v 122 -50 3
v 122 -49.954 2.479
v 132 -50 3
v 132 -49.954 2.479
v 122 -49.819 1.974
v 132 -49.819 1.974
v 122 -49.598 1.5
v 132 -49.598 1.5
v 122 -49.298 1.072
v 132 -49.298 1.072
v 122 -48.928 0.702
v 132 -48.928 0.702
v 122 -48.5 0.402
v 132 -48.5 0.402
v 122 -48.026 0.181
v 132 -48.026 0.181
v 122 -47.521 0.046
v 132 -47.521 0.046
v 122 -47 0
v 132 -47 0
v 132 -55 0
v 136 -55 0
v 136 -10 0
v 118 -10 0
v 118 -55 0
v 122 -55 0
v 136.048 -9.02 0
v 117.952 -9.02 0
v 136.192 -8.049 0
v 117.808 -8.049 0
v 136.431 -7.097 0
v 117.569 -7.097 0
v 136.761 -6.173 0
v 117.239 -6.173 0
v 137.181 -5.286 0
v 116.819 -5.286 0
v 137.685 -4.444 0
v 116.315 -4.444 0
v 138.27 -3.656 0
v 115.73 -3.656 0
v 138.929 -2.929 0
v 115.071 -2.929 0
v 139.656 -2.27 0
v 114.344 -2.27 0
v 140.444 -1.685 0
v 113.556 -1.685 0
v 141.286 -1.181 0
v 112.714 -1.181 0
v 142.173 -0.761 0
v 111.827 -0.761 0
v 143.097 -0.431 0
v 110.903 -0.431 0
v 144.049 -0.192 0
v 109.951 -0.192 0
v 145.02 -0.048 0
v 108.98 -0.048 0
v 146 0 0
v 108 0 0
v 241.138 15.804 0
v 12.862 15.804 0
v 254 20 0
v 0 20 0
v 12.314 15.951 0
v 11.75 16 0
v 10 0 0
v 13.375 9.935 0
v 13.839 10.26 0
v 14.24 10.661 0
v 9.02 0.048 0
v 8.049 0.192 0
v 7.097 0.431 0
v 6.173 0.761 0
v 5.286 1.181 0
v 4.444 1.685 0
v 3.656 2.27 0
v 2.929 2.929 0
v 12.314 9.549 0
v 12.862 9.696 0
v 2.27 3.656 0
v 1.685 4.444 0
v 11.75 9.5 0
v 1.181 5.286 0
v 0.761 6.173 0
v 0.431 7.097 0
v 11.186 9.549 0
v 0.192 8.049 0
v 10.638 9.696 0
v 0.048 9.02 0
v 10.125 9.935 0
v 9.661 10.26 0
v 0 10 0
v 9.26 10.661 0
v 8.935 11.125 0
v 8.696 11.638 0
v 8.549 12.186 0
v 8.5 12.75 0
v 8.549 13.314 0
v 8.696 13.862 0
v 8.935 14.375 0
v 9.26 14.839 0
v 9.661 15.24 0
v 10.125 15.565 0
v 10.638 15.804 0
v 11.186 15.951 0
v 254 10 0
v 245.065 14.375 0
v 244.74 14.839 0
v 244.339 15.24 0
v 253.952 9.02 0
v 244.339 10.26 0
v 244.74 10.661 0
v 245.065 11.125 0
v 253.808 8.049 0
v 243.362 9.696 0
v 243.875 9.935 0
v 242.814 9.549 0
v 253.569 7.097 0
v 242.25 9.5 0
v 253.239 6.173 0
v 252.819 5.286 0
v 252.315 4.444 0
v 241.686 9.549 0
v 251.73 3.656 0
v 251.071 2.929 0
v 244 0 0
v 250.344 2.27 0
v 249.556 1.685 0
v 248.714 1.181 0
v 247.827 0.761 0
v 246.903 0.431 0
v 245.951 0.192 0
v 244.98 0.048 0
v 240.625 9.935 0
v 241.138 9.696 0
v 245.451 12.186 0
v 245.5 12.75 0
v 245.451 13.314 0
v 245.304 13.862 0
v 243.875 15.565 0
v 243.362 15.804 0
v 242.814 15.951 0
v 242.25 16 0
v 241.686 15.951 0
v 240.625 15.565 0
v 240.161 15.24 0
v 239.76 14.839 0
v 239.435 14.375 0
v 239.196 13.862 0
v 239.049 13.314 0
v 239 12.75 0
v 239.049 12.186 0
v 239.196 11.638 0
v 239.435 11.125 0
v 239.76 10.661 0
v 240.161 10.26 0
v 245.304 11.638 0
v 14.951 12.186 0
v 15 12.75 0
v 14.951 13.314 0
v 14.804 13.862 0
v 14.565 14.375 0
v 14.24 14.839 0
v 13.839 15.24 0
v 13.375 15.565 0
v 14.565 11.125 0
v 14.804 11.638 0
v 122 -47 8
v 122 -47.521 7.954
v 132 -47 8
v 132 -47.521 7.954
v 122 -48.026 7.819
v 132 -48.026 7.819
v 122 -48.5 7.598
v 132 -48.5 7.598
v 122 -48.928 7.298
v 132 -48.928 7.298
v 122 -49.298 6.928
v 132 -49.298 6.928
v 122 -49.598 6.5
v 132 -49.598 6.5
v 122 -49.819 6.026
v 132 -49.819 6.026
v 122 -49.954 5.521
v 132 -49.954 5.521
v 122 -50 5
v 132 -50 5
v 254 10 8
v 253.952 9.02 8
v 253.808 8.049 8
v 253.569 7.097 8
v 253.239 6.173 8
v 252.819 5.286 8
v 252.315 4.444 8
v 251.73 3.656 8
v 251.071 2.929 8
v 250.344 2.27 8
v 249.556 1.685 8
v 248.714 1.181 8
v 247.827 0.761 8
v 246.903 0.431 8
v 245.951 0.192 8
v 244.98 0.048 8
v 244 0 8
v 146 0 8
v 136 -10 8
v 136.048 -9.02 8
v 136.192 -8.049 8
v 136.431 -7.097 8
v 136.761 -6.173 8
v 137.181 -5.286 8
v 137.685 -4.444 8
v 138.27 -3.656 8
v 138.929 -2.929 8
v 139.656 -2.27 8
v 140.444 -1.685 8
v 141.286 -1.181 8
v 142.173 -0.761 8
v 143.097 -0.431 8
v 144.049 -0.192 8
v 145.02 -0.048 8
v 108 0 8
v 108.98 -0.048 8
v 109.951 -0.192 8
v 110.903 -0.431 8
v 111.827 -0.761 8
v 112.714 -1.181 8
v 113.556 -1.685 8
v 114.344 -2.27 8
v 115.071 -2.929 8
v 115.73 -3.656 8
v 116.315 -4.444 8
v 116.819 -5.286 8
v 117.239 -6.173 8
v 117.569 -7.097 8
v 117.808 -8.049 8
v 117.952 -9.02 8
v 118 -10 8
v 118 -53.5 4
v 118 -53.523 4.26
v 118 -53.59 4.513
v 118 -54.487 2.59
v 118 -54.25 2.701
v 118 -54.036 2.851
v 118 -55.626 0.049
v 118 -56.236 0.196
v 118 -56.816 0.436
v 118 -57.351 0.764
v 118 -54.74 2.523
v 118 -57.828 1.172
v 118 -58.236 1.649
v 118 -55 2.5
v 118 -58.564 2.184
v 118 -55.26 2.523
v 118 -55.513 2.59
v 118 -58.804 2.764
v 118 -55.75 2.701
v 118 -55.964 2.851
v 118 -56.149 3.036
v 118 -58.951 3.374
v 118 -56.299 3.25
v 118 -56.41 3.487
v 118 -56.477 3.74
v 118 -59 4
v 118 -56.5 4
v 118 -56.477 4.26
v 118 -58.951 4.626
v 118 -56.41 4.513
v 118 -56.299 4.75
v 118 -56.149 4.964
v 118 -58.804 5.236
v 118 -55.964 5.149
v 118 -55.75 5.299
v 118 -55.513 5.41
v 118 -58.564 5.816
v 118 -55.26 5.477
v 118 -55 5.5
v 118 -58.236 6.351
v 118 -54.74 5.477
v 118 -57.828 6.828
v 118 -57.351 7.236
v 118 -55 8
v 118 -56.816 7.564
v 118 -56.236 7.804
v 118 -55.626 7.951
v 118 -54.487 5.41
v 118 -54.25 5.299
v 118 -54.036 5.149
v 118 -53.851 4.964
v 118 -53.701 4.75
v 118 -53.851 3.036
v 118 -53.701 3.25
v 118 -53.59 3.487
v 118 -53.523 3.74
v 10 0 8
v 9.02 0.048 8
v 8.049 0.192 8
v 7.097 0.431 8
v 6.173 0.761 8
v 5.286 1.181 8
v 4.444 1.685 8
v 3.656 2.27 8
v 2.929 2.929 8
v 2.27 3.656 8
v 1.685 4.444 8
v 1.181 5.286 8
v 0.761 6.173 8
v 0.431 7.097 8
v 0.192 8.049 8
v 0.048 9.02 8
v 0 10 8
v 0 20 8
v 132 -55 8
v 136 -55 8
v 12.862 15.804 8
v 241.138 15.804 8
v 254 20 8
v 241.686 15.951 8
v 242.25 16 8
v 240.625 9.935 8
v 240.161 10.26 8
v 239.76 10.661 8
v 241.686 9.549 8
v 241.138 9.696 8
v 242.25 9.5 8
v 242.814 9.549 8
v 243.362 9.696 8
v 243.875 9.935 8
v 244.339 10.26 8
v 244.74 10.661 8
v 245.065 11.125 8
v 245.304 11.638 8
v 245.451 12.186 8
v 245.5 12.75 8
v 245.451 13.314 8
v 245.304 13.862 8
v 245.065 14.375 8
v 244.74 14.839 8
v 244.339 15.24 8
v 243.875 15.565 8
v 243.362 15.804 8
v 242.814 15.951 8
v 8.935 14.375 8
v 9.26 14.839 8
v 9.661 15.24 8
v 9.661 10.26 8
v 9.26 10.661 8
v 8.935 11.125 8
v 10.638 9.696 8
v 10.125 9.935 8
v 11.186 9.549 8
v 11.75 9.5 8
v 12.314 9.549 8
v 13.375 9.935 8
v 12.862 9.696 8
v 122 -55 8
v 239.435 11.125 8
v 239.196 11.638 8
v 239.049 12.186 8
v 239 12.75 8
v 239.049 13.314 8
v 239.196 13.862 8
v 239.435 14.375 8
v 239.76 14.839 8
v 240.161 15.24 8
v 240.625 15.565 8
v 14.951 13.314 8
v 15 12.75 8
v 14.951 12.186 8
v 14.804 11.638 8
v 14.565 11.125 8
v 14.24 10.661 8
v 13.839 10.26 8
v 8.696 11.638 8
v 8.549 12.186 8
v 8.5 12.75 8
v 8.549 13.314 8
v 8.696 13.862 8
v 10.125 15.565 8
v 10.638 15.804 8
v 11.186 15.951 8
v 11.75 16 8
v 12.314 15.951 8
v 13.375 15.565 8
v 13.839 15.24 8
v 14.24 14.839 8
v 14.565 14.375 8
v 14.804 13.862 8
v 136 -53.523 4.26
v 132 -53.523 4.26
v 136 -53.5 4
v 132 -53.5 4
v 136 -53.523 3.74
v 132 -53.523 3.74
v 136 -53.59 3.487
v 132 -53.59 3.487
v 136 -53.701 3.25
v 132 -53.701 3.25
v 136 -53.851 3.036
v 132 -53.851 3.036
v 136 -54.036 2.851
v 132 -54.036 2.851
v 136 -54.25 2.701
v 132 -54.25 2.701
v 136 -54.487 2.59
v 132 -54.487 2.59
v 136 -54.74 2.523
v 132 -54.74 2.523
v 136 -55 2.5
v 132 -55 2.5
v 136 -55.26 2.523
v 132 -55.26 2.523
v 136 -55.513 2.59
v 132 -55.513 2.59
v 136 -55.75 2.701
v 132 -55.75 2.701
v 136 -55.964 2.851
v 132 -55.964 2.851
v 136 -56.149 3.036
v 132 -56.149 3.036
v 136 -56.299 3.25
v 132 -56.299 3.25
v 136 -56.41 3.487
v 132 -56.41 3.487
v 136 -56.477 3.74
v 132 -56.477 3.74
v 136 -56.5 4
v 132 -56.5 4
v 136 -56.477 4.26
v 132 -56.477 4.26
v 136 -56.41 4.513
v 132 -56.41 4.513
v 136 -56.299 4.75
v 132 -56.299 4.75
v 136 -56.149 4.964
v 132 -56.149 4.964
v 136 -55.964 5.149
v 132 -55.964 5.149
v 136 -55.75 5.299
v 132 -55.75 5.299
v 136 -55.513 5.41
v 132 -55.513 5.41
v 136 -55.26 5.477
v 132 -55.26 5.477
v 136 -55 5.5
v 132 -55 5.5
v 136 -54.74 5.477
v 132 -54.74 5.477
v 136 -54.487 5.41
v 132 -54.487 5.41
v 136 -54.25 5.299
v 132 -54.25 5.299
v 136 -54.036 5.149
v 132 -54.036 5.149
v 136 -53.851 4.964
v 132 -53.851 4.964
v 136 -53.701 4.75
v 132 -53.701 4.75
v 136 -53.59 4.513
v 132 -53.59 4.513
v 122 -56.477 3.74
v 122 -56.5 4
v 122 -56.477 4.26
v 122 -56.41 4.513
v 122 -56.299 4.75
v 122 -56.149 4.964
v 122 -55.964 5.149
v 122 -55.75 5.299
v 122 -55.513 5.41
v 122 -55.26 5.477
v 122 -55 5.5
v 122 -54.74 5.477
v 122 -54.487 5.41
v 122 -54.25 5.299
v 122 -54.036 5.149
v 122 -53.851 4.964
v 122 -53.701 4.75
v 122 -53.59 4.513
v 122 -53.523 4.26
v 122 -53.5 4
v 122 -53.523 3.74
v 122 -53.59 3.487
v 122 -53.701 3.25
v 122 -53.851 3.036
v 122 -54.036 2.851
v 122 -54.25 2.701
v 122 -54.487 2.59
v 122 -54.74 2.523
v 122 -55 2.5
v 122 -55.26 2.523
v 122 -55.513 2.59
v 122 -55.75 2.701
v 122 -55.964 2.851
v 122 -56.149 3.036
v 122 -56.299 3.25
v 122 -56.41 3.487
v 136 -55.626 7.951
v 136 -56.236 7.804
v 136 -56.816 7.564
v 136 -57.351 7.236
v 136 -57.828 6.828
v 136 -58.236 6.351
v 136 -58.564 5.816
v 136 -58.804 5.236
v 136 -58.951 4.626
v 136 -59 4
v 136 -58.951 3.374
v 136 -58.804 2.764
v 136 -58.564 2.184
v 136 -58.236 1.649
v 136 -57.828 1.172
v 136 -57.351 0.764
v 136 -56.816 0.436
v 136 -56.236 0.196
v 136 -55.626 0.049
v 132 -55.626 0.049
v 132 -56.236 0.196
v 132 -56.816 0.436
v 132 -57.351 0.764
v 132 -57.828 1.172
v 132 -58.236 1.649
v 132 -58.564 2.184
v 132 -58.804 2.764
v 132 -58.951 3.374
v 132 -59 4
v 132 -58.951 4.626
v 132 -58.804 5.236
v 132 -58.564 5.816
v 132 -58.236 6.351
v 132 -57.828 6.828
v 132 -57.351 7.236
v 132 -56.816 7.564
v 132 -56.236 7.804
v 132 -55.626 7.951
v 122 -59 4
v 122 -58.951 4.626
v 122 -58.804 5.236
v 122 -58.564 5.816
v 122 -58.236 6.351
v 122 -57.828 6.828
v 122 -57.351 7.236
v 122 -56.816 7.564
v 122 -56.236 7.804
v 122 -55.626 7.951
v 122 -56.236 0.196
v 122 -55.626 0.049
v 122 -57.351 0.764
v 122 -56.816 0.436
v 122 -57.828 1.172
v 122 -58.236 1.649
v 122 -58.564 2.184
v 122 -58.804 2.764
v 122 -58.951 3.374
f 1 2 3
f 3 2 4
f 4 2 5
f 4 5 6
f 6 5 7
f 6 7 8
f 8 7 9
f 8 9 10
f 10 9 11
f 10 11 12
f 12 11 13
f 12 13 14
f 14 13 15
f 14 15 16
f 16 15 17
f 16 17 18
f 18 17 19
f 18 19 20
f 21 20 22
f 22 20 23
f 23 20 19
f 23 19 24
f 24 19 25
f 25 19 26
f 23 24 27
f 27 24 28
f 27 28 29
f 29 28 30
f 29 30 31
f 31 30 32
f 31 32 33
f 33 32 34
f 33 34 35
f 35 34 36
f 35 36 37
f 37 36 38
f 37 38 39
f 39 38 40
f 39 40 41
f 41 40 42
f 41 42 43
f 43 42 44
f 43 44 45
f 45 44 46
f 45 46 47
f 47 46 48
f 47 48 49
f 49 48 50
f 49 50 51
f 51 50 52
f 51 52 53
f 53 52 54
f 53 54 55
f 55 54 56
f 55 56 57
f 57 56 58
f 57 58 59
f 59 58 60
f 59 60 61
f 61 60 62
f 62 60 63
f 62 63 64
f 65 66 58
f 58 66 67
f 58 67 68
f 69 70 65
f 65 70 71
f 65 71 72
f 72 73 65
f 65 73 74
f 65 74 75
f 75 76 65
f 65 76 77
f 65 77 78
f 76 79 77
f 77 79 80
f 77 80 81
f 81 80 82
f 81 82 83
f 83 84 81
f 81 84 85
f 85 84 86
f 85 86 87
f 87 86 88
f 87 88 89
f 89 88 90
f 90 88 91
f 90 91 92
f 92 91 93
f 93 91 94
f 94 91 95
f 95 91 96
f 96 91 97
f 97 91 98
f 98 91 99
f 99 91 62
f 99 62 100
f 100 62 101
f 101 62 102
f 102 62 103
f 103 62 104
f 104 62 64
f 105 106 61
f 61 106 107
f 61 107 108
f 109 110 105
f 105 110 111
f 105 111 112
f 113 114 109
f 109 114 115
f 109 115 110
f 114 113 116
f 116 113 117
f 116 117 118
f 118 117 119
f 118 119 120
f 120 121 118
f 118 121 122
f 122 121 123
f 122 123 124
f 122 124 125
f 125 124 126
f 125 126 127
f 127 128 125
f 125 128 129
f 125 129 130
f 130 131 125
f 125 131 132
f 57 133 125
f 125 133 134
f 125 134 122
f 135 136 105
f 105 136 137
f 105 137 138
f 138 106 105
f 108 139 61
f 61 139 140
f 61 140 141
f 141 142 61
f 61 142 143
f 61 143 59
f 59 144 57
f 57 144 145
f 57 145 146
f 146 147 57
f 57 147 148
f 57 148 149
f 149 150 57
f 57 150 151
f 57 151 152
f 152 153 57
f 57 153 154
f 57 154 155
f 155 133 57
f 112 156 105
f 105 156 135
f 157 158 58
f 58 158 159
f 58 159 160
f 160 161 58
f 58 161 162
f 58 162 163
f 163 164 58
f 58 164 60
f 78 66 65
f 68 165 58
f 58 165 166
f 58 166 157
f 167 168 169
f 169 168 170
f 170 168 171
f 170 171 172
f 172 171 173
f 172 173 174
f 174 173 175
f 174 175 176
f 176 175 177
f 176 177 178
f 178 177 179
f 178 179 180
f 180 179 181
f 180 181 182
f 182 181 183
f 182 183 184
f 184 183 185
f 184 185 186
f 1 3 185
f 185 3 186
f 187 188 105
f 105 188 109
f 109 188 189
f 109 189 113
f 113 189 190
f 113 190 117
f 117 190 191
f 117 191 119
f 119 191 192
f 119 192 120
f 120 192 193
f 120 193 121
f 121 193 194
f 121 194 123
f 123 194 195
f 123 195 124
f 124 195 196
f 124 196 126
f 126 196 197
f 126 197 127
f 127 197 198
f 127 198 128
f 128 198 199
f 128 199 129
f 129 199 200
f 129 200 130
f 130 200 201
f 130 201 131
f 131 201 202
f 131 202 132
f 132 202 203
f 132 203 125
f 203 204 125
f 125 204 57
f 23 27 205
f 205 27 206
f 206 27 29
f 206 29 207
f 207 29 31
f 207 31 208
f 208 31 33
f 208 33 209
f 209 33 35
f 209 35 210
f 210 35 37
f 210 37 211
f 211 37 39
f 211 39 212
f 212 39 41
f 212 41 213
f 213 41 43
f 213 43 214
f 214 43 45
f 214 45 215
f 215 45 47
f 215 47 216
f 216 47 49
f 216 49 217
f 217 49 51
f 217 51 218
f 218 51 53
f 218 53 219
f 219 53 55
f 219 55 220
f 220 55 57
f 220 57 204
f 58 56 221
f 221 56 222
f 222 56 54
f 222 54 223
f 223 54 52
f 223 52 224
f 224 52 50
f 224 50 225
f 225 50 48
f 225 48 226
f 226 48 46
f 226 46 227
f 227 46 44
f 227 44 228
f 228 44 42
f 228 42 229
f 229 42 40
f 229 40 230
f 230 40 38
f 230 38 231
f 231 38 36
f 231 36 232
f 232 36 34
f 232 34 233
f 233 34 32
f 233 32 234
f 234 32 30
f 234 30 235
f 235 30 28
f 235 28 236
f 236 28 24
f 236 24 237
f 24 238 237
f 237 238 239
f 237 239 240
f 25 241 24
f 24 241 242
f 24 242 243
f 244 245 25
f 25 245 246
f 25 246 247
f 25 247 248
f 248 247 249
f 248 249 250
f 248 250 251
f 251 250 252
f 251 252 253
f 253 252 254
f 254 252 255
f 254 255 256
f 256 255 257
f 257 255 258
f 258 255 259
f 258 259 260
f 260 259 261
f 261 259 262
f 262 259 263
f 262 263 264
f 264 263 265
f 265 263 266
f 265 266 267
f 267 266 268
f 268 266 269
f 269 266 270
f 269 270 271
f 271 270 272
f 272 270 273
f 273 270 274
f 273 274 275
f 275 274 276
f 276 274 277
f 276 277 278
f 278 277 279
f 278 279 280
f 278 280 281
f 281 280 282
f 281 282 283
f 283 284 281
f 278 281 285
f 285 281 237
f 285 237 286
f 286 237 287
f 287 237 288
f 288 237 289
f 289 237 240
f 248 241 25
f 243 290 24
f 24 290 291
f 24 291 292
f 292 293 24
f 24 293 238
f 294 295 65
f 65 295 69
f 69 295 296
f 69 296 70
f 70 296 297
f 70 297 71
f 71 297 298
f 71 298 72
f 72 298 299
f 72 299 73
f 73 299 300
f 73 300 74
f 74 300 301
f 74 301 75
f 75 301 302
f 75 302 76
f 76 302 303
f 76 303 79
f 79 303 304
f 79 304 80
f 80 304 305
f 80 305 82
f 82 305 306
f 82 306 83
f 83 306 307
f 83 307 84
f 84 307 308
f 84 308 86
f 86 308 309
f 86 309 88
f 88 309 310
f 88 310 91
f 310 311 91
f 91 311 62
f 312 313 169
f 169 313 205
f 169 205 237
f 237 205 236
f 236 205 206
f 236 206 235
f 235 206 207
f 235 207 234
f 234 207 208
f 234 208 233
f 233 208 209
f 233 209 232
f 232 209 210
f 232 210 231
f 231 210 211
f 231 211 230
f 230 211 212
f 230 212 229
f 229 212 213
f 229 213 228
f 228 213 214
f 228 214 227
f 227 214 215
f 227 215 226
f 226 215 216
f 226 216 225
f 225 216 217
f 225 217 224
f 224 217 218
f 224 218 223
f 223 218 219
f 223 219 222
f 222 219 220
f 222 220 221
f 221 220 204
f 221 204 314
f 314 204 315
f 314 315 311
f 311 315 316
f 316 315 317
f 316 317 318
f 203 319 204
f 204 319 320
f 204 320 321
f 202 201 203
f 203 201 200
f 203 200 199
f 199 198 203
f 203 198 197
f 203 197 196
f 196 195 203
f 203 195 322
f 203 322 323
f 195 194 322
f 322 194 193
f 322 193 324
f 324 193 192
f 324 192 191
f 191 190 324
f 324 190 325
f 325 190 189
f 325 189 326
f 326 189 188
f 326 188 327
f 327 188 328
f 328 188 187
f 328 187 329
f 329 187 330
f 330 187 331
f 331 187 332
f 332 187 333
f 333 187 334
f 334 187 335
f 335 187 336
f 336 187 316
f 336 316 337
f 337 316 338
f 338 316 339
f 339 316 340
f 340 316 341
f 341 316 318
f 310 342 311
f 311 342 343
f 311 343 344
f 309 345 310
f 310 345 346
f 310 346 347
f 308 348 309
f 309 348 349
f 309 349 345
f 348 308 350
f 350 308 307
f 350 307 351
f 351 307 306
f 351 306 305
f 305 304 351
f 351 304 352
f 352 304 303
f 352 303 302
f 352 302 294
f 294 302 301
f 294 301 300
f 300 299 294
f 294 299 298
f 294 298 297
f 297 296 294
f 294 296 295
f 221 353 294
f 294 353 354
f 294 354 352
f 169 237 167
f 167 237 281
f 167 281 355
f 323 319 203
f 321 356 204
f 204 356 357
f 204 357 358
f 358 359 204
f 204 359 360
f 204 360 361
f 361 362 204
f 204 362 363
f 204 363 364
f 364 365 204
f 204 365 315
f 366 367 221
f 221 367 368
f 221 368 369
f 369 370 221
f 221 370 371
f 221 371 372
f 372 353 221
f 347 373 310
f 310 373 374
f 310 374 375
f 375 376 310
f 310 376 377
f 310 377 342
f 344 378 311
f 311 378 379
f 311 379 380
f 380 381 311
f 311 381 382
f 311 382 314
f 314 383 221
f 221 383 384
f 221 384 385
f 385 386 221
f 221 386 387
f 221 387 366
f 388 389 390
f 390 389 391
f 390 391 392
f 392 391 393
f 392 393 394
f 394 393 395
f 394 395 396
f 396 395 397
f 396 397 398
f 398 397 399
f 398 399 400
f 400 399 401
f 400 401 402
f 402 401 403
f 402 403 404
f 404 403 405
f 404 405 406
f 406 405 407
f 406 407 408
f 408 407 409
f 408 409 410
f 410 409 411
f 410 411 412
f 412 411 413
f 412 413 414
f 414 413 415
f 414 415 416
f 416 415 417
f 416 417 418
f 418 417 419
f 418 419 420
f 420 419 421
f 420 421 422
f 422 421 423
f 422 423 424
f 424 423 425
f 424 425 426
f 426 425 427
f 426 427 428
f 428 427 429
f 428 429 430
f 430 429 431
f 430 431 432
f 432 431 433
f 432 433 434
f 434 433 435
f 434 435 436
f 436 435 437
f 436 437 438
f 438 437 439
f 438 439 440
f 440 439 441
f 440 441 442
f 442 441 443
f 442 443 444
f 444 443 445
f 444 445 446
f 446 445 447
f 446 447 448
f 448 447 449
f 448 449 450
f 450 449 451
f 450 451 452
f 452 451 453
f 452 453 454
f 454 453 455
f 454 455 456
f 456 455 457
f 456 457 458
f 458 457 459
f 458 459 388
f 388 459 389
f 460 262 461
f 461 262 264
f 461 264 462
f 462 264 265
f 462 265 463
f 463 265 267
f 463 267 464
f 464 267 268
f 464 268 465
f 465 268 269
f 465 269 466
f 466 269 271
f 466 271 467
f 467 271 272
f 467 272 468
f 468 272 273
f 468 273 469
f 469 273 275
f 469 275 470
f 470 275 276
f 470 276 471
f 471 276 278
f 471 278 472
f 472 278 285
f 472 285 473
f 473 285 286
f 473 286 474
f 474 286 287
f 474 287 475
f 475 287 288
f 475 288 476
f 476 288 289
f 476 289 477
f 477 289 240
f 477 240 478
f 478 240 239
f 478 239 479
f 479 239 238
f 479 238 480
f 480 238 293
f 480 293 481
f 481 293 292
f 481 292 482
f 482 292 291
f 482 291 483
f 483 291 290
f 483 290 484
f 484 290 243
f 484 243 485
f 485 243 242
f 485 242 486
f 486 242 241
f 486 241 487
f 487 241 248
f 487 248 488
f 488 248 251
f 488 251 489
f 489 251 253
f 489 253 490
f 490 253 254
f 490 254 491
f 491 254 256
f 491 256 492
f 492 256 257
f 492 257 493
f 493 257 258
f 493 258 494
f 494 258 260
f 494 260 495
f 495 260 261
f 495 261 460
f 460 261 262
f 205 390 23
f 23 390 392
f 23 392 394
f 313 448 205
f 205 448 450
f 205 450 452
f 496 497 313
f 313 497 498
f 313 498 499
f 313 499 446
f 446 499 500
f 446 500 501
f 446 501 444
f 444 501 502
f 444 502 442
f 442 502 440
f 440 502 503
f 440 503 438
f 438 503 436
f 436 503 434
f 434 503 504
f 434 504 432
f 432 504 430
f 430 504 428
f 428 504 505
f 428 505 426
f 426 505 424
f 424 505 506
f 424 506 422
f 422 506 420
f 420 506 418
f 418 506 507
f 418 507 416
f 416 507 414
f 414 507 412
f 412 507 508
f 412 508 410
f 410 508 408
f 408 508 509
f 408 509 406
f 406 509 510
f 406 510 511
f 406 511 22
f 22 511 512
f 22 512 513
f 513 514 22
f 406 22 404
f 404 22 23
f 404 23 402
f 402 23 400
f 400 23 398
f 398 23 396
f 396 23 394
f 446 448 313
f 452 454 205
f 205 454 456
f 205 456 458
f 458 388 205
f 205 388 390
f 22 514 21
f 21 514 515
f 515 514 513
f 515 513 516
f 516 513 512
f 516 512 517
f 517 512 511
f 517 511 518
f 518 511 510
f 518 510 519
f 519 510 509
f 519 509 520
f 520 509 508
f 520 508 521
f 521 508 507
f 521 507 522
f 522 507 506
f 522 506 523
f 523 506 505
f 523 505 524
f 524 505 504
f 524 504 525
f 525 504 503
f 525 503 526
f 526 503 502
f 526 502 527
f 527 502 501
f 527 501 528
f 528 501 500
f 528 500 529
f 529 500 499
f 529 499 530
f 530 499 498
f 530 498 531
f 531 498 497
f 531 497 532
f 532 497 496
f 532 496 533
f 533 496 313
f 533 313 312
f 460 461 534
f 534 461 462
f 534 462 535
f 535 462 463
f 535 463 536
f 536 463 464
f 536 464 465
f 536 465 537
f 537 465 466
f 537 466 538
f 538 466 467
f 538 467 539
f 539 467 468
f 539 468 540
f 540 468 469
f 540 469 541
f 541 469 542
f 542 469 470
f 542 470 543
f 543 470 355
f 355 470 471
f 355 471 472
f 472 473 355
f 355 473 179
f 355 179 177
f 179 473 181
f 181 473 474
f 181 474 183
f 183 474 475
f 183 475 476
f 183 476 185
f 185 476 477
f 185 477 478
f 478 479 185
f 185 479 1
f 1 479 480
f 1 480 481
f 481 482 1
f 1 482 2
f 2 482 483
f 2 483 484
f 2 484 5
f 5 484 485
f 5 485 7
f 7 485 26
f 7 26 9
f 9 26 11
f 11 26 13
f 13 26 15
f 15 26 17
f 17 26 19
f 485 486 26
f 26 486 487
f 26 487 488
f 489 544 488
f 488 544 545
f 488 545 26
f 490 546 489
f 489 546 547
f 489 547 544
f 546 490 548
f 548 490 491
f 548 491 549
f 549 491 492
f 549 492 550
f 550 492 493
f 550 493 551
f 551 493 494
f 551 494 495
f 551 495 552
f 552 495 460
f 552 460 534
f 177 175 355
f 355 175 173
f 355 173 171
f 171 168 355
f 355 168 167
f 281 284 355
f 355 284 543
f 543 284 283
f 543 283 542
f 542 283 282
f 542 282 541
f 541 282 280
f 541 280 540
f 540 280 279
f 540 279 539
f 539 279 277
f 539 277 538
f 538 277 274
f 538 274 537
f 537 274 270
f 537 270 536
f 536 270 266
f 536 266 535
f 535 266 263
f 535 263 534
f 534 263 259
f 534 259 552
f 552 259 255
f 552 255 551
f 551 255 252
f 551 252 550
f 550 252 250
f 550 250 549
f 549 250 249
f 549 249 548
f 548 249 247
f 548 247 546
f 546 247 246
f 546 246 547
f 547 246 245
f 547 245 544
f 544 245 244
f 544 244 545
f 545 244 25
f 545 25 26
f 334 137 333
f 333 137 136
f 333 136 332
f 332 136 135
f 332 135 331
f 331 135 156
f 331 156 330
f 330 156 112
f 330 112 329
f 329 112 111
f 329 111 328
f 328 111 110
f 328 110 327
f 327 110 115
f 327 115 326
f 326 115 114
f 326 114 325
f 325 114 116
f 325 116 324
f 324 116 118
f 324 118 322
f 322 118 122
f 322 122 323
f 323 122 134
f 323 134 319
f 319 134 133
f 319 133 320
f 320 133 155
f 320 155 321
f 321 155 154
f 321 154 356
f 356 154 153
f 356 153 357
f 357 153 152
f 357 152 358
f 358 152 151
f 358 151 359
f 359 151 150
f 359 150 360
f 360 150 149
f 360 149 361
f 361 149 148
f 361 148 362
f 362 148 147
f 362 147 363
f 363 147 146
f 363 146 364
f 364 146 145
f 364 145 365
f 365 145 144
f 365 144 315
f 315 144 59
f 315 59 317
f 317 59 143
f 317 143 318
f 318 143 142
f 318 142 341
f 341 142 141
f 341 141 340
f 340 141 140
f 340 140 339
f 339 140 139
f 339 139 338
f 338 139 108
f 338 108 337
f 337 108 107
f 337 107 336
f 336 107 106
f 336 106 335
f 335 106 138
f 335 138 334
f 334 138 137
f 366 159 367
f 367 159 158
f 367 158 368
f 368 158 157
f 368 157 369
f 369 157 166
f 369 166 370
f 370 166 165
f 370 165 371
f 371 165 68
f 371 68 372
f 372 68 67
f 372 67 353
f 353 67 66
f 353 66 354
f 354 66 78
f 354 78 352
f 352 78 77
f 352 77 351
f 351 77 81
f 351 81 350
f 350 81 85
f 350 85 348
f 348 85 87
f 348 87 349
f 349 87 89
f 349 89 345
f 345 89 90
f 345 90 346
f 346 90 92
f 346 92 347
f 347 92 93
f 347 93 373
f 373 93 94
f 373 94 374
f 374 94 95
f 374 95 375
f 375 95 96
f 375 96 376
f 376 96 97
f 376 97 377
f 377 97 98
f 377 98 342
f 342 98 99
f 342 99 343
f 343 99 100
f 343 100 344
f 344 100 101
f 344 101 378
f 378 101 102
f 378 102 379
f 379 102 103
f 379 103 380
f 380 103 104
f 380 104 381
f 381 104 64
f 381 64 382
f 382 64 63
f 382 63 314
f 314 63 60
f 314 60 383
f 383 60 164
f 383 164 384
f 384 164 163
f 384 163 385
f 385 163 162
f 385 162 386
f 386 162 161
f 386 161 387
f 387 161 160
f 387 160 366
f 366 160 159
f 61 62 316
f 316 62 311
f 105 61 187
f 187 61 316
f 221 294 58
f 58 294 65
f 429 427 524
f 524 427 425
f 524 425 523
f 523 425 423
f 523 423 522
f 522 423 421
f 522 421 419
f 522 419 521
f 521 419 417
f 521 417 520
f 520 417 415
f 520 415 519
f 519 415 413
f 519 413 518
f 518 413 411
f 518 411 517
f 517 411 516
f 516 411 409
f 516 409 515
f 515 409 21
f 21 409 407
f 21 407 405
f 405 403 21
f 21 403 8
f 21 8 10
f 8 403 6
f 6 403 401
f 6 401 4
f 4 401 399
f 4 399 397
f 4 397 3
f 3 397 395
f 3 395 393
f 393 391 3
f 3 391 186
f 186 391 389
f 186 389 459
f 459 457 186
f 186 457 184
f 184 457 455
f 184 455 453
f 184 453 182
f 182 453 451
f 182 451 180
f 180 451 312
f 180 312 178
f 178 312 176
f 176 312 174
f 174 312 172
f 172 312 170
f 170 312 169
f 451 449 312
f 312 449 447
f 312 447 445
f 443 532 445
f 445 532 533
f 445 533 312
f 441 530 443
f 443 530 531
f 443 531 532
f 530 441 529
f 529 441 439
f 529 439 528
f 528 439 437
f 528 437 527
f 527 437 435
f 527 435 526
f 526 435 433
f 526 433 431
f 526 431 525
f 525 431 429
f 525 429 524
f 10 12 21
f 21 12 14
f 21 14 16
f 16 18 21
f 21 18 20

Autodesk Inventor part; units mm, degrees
ref_plane "YZ Plane" through (0, 0, 0) normal (1, 0, 0) x (0, 1, 0)
ref_plane "XZ Plane" through (0, 0, 0) normal (0, 1, 0) x (-1, 0, 0)
ref_plane "XY Plane" through (0, 0, 0) normal (0, 0, 1) x (1, 0, 0)
sketch "Sketch1" plane through (0, 0, 0) normal (0, 0, 1) x (1, 0, 0)
  line L0 (254, 0) -> (254, 20)
  line L1 (254, 20) -> (0, 20)
  line L2 (0, 20) -> (0, 0)
  line L3 (0, 20) -> (0, 16) construction
  line L4 (0, 16) -> (8.5, 16) construction
  line L5 (8.5, 16) -> (11.75, 16) construction
  line L6 (11.75, 16) -> (11.75, 12.75) construction
  circle A0 centre (11.75, 12.75) radius 3.25
  line L7 (254, 20) -> (254, 16) construction
  line L8 (254, 16) -> (245.5, 16) construction
  line L9 (245.5, 16) -> (245.5, 12.75) construction
  line L10 (245.5, 12.75) -> (242.25, 12.75) construction
  circle A1 centre (242.25, 12.75) radius 3.25
  line L11 (0, 0) -> (254, 0)
  line L12 (127, 0) -> (127, -50) construction
  line L13 (122, -50) -> (132, -50)
  line L14 (132, -50) -> (132, -59)
  line L15 (122, -50) -> (122, -59)
  line L16 (132, -59) -> (136, -59)
  line L17 (122, -59) -> (118, -59)
  line L18 (118, -59) -> (118, 0)
  line L19 (136, -59) -> (136, 0)
  dimension "d1" = 20
  dimension "d2" = 4
  dimension "d3" = 8.5
  dimension "d4" = 3.25
  dimension "d5" = 3.25
  dimension "d6" = 4
  dimension "d7" = 8.5
  dimension "d8" = 3.25
  dimension "d9" = 3.25
  dimension "d14" = 242.25
  dimension "d40" = 50
  dimension "d41" = 10
  dimension "d42" = 5
  dimension "d43" = 0
  dimension "d44" = 9
  dimension "d45" = 9
  dimension "d46" = 4
  dimension "d47" = 4
extrude "Extrusion1" add sketch "Sketch1" along normal blind 8
fillet "Fillet2" radius 4 4 edges at (120, -59, 8) (120, -59, 0) (134, -59, 0) (134, -59, 8)
hole "Hole1" at (136, -55, 4) direction (-1, 0, 0) diameter 3 end through all
fillet "Fillet5" radius 10 4 edges at (0, 0, 4) (118, 0, 4) (136, 0, 4) (254, 0, 4)
fillet "Fillet6" radius 3 2 edges at (127, -50, 8) (127, -50, 0)
equation "\"d42\" = 0.5 * d41"
equation "\"d45\" = d44"
equation "\"d47\" = d46"
properties part number "WebcamBase"
